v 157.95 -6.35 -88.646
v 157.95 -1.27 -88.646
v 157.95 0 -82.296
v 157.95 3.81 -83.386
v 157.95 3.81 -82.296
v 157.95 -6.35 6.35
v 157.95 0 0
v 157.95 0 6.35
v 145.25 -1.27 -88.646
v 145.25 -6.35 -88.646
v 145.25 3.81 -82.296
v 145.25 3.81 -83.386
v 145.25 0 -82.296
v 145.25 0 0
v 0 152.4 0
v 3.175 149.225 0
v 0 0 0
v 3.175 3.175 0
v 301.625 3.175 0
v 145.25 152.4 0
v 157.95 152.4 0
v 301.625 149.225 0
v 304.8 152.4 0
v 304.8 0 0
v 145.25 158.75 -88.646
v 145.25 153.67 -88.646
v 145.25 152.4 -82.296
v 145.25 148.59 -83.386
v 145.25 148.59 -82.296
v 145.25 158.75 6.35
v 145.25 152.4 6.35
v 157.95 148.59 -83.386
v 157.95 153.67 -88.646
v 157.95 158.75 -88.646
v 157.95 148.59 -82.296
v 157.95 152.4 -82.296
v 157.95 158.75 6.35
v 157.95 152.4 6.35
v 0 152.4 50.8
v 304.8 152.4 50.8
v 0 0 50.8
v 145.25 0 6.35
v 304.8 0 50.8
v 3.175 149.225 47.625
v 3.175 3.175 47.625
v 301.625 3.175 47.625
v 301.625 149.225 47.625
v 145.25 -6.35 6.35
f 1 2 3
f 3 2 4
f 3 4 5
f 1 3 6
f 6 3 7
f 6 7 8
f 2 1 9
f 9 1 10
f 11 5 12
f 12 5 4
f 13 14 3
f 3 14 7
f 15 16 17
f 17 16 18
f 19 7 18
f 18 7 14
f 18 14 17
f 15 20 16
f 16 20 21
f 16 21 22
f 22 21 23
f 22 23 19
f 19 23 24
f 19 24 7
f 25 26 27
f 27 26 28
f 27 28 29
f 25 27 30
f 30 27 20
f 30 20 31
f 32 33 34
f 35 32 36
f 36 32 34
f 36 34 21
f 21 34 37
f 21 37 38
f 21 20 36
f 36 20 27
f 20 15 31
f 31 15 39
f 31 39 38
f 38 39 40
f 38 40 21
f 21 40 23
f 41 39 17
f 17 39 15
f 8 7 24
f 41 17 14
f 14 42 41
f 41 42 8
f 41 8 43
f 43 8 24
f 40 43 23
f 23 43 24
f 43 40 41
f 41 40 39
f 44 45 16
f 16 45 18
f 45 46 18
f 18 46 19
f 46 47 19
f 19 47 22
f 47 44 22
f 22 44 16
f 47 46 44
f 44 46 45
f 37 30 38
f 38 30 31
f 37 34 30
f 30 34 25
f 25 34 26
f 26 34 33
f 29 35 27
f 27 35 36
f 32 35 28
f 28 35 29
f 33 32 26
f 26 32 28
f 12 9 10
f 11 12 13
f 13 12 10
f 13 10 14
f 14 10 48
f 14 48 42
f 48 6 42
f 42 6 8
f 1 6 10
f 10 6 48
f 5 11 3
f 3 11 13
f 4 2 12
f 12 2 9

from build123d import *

# Parameters (mm, degrees)
SKETCH1_W           = 304.8
SKETCH1_H           = 152.4
BOSS_EXTRUDE1_DEPTH = 50.8
SHELL1_T            = -3.175
SKETCH3_W           = 12.7
SKETCH3_H           = 6.35
BOSS_EXTRUDE2_DEPTH = 6.35
SKETCH4_W           = 12.7
SKETCH4_H           = 6.35
BOSS_EXTRUDE3_DEPTH = 88.646
SKETCH5_W           = 12.7
SKETCH5_H           = 6.35
BOSS_EXTRUDE4_DEPTH = 3.81
CUT_EXTRUDE1_REACH  = 242.848


with BuildPart() as part:
    # Sketch1 → Boss-Extrude1 (new body)
    with BuildSketch(Plane.XY):
        with Locations((152.4, 76.2)):
            Rectangle(SKETCH1_W, SKETCH1_H)
    extrude(amount=BOSS_EXTRUDE1_DEPTH)

    # Shell1
    shell1_openings = [part.faces().sort_by_distance(p)[0] for p in [
        (152.4, 76.2, 0),
    ]]
    offset(amount=SHELL1_T, openings=shell1_openings, kind=Kind.INTERSECTION)

    # Sketch3 → Boss-Extrude2 (add)
    with BuildSketch(Plane(origin=(0, 152.4, 0), x_dir=(1, 0, 0), z_dir=(0, 1, 0))):
        with Locations((151.599627363, -3.175)):
            Rectangle(SKETCH3_W, SKETCH3_H)
    boss_extrude2 = extrude(amount=BOSS_EXTRUDE2_DEPTH)

    # Sketch4 → Boss-Extrude3 (add)
    with BuildSketch(Plane(origin=(0, 0, 0), x_dir=(-1, 0, 0), z_dir=(0, 0, -1))):
        with Locations((-151.599627363, 155.575)):
            Rectangle(SKETCH4_W, SKETCH4_H)
    boss_extrude3 = extrude(amount=BOSS_EXTRUDE3_DEPTH)

    # Sketch5 → Boss-Extrude4 (add)
    with BuildSketch(Plane.XZ.offset(-152.4)):
        with Locations((151.599627363, -85.471)):
            Rectangle(SKETCH5_W, SKETCH5_H)
    boss_extrude4 = extrude(amount=BOSS_EXTRUDE4_DEPTH)

    # Sketch6 → Cut-Extrude1 (cut, up to next)
    with BuildSketch(Plane(origin=(157.949627363, 0, 0), x_dir=(0, 0, -1), z_dir=(1, 0, 0)), mode=Mode.PRIVATE) as cut_extrude1_sk1:
        Polygon((83.385506006, 148.59), (88.646, 153.67), (88.646, 148.59), align=None)
    cut_extrude1_tool1 = extrude(cut_extrude1_sk1.sketch, amount=-CUT_EXTRUDE1_REACH, mode=Mode.PRIVATE) & part.part
    cut_extrude1 = cut_extrude1_tool1.solids().sort_by_distance((157.949627, 150.283333, -86.892502))[0]
    add(cut_extrude1, mode=Mode.SUBTRACT)

    # Mirror1: Boss-Extrude2, Boss-Extrude3, Boss-Extrude4, Cut-Extrude1 across plane
    add(boss_extrude2.mirror(Plane(origin=(0, 76.2, 0), x_dir=(0, 0, 1), z_dir=(0, -1, 0))))
    add(boss_extrude3.mirror(Plane(origin=(0, 76.2, 0), x_dir=(0, 0, 1), z_dir=(0, -1, 0))))
    add(boss_extrude4.mirror(Plane(origin=(0, 76.2, 0), x_dir=(0, 0, 1), z_dir=(0, -1, 0))))
    add(cut_extrude1.mirror(Plane(origin=(0, 76.2, 0), x_dir=(0, 0, 1), z_dir=(0, -1, 0))), mode=Mode.SUBTRACT)


solid = part.part
